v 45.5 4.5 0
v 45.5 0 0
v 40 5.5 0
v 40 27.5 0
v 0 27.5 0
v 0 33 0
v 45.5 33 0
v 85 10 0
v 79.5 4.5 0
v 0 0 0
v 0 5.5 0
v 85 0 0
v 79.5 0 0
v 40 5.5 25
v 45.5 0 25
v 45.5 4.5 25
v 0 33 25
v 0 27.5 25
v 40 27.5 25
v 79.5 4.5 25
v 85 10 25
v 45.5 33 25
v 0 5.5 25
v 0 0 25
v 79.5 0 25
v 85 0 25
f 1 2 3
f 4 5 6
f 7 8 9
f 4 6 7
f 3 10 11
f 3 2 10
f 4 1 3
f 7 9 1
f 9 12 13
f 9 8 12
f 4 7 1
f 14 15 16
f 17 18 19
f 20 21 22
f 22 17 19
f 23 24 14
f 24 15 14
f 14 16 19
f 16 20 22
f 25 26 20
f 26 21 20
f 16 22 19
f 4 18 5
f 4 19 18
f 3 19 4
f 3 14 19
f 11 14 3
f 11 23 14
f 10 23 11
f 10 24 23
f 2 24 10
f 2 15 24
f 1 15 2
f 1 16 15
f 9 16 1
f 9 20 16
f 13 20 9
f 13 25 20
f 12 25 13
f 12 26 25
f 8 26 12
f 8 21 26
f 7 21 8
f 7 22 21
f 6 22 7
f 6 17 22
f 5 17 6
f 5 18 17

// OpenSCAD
table_width = 22;

holder_width = 25;
holder_thikness = 5.5;
holder_lenght = 40;

headphone_height = 4.5;
headphone_widht = 34;

// Print HeadPhone Holder
HeadPholeHolder();

module HeadPholeHolder(){
    linear_extrude(height = holder_width){
        HeadPholeHolderSideView();
    }
}

module HeadPholeHolderSideView(){
    difference(){
        square ([holder_lenght, holder_thikness * 2 + table_width]);
        translate([0, holder_thikness])
            square ([holder_lenght, table_width]);
    }
    difference(){
        translate([holder_lenght, 0]){
            square([holder_thikness, holder_thikness * 2 + table_width]);
            square([holder_thikness * 2 + headphone_widht, headphone_height + holder_thikness]);
        }
        translate([holder_lenght + holder_thikness, 0]){
            square([headphone_widht, headphone_height]);
        }
    }
    polygon(points=[[holder_lenght + holder_thikness, headphone_height + holder_thikness], 
        [holder_lenght + 2 * holder_thikness + headphone_widht, headphone_height + holder_thikness], 
        [holder_lenght + holder_thikness, holder_thikness * 2 + table_width]]);
}
